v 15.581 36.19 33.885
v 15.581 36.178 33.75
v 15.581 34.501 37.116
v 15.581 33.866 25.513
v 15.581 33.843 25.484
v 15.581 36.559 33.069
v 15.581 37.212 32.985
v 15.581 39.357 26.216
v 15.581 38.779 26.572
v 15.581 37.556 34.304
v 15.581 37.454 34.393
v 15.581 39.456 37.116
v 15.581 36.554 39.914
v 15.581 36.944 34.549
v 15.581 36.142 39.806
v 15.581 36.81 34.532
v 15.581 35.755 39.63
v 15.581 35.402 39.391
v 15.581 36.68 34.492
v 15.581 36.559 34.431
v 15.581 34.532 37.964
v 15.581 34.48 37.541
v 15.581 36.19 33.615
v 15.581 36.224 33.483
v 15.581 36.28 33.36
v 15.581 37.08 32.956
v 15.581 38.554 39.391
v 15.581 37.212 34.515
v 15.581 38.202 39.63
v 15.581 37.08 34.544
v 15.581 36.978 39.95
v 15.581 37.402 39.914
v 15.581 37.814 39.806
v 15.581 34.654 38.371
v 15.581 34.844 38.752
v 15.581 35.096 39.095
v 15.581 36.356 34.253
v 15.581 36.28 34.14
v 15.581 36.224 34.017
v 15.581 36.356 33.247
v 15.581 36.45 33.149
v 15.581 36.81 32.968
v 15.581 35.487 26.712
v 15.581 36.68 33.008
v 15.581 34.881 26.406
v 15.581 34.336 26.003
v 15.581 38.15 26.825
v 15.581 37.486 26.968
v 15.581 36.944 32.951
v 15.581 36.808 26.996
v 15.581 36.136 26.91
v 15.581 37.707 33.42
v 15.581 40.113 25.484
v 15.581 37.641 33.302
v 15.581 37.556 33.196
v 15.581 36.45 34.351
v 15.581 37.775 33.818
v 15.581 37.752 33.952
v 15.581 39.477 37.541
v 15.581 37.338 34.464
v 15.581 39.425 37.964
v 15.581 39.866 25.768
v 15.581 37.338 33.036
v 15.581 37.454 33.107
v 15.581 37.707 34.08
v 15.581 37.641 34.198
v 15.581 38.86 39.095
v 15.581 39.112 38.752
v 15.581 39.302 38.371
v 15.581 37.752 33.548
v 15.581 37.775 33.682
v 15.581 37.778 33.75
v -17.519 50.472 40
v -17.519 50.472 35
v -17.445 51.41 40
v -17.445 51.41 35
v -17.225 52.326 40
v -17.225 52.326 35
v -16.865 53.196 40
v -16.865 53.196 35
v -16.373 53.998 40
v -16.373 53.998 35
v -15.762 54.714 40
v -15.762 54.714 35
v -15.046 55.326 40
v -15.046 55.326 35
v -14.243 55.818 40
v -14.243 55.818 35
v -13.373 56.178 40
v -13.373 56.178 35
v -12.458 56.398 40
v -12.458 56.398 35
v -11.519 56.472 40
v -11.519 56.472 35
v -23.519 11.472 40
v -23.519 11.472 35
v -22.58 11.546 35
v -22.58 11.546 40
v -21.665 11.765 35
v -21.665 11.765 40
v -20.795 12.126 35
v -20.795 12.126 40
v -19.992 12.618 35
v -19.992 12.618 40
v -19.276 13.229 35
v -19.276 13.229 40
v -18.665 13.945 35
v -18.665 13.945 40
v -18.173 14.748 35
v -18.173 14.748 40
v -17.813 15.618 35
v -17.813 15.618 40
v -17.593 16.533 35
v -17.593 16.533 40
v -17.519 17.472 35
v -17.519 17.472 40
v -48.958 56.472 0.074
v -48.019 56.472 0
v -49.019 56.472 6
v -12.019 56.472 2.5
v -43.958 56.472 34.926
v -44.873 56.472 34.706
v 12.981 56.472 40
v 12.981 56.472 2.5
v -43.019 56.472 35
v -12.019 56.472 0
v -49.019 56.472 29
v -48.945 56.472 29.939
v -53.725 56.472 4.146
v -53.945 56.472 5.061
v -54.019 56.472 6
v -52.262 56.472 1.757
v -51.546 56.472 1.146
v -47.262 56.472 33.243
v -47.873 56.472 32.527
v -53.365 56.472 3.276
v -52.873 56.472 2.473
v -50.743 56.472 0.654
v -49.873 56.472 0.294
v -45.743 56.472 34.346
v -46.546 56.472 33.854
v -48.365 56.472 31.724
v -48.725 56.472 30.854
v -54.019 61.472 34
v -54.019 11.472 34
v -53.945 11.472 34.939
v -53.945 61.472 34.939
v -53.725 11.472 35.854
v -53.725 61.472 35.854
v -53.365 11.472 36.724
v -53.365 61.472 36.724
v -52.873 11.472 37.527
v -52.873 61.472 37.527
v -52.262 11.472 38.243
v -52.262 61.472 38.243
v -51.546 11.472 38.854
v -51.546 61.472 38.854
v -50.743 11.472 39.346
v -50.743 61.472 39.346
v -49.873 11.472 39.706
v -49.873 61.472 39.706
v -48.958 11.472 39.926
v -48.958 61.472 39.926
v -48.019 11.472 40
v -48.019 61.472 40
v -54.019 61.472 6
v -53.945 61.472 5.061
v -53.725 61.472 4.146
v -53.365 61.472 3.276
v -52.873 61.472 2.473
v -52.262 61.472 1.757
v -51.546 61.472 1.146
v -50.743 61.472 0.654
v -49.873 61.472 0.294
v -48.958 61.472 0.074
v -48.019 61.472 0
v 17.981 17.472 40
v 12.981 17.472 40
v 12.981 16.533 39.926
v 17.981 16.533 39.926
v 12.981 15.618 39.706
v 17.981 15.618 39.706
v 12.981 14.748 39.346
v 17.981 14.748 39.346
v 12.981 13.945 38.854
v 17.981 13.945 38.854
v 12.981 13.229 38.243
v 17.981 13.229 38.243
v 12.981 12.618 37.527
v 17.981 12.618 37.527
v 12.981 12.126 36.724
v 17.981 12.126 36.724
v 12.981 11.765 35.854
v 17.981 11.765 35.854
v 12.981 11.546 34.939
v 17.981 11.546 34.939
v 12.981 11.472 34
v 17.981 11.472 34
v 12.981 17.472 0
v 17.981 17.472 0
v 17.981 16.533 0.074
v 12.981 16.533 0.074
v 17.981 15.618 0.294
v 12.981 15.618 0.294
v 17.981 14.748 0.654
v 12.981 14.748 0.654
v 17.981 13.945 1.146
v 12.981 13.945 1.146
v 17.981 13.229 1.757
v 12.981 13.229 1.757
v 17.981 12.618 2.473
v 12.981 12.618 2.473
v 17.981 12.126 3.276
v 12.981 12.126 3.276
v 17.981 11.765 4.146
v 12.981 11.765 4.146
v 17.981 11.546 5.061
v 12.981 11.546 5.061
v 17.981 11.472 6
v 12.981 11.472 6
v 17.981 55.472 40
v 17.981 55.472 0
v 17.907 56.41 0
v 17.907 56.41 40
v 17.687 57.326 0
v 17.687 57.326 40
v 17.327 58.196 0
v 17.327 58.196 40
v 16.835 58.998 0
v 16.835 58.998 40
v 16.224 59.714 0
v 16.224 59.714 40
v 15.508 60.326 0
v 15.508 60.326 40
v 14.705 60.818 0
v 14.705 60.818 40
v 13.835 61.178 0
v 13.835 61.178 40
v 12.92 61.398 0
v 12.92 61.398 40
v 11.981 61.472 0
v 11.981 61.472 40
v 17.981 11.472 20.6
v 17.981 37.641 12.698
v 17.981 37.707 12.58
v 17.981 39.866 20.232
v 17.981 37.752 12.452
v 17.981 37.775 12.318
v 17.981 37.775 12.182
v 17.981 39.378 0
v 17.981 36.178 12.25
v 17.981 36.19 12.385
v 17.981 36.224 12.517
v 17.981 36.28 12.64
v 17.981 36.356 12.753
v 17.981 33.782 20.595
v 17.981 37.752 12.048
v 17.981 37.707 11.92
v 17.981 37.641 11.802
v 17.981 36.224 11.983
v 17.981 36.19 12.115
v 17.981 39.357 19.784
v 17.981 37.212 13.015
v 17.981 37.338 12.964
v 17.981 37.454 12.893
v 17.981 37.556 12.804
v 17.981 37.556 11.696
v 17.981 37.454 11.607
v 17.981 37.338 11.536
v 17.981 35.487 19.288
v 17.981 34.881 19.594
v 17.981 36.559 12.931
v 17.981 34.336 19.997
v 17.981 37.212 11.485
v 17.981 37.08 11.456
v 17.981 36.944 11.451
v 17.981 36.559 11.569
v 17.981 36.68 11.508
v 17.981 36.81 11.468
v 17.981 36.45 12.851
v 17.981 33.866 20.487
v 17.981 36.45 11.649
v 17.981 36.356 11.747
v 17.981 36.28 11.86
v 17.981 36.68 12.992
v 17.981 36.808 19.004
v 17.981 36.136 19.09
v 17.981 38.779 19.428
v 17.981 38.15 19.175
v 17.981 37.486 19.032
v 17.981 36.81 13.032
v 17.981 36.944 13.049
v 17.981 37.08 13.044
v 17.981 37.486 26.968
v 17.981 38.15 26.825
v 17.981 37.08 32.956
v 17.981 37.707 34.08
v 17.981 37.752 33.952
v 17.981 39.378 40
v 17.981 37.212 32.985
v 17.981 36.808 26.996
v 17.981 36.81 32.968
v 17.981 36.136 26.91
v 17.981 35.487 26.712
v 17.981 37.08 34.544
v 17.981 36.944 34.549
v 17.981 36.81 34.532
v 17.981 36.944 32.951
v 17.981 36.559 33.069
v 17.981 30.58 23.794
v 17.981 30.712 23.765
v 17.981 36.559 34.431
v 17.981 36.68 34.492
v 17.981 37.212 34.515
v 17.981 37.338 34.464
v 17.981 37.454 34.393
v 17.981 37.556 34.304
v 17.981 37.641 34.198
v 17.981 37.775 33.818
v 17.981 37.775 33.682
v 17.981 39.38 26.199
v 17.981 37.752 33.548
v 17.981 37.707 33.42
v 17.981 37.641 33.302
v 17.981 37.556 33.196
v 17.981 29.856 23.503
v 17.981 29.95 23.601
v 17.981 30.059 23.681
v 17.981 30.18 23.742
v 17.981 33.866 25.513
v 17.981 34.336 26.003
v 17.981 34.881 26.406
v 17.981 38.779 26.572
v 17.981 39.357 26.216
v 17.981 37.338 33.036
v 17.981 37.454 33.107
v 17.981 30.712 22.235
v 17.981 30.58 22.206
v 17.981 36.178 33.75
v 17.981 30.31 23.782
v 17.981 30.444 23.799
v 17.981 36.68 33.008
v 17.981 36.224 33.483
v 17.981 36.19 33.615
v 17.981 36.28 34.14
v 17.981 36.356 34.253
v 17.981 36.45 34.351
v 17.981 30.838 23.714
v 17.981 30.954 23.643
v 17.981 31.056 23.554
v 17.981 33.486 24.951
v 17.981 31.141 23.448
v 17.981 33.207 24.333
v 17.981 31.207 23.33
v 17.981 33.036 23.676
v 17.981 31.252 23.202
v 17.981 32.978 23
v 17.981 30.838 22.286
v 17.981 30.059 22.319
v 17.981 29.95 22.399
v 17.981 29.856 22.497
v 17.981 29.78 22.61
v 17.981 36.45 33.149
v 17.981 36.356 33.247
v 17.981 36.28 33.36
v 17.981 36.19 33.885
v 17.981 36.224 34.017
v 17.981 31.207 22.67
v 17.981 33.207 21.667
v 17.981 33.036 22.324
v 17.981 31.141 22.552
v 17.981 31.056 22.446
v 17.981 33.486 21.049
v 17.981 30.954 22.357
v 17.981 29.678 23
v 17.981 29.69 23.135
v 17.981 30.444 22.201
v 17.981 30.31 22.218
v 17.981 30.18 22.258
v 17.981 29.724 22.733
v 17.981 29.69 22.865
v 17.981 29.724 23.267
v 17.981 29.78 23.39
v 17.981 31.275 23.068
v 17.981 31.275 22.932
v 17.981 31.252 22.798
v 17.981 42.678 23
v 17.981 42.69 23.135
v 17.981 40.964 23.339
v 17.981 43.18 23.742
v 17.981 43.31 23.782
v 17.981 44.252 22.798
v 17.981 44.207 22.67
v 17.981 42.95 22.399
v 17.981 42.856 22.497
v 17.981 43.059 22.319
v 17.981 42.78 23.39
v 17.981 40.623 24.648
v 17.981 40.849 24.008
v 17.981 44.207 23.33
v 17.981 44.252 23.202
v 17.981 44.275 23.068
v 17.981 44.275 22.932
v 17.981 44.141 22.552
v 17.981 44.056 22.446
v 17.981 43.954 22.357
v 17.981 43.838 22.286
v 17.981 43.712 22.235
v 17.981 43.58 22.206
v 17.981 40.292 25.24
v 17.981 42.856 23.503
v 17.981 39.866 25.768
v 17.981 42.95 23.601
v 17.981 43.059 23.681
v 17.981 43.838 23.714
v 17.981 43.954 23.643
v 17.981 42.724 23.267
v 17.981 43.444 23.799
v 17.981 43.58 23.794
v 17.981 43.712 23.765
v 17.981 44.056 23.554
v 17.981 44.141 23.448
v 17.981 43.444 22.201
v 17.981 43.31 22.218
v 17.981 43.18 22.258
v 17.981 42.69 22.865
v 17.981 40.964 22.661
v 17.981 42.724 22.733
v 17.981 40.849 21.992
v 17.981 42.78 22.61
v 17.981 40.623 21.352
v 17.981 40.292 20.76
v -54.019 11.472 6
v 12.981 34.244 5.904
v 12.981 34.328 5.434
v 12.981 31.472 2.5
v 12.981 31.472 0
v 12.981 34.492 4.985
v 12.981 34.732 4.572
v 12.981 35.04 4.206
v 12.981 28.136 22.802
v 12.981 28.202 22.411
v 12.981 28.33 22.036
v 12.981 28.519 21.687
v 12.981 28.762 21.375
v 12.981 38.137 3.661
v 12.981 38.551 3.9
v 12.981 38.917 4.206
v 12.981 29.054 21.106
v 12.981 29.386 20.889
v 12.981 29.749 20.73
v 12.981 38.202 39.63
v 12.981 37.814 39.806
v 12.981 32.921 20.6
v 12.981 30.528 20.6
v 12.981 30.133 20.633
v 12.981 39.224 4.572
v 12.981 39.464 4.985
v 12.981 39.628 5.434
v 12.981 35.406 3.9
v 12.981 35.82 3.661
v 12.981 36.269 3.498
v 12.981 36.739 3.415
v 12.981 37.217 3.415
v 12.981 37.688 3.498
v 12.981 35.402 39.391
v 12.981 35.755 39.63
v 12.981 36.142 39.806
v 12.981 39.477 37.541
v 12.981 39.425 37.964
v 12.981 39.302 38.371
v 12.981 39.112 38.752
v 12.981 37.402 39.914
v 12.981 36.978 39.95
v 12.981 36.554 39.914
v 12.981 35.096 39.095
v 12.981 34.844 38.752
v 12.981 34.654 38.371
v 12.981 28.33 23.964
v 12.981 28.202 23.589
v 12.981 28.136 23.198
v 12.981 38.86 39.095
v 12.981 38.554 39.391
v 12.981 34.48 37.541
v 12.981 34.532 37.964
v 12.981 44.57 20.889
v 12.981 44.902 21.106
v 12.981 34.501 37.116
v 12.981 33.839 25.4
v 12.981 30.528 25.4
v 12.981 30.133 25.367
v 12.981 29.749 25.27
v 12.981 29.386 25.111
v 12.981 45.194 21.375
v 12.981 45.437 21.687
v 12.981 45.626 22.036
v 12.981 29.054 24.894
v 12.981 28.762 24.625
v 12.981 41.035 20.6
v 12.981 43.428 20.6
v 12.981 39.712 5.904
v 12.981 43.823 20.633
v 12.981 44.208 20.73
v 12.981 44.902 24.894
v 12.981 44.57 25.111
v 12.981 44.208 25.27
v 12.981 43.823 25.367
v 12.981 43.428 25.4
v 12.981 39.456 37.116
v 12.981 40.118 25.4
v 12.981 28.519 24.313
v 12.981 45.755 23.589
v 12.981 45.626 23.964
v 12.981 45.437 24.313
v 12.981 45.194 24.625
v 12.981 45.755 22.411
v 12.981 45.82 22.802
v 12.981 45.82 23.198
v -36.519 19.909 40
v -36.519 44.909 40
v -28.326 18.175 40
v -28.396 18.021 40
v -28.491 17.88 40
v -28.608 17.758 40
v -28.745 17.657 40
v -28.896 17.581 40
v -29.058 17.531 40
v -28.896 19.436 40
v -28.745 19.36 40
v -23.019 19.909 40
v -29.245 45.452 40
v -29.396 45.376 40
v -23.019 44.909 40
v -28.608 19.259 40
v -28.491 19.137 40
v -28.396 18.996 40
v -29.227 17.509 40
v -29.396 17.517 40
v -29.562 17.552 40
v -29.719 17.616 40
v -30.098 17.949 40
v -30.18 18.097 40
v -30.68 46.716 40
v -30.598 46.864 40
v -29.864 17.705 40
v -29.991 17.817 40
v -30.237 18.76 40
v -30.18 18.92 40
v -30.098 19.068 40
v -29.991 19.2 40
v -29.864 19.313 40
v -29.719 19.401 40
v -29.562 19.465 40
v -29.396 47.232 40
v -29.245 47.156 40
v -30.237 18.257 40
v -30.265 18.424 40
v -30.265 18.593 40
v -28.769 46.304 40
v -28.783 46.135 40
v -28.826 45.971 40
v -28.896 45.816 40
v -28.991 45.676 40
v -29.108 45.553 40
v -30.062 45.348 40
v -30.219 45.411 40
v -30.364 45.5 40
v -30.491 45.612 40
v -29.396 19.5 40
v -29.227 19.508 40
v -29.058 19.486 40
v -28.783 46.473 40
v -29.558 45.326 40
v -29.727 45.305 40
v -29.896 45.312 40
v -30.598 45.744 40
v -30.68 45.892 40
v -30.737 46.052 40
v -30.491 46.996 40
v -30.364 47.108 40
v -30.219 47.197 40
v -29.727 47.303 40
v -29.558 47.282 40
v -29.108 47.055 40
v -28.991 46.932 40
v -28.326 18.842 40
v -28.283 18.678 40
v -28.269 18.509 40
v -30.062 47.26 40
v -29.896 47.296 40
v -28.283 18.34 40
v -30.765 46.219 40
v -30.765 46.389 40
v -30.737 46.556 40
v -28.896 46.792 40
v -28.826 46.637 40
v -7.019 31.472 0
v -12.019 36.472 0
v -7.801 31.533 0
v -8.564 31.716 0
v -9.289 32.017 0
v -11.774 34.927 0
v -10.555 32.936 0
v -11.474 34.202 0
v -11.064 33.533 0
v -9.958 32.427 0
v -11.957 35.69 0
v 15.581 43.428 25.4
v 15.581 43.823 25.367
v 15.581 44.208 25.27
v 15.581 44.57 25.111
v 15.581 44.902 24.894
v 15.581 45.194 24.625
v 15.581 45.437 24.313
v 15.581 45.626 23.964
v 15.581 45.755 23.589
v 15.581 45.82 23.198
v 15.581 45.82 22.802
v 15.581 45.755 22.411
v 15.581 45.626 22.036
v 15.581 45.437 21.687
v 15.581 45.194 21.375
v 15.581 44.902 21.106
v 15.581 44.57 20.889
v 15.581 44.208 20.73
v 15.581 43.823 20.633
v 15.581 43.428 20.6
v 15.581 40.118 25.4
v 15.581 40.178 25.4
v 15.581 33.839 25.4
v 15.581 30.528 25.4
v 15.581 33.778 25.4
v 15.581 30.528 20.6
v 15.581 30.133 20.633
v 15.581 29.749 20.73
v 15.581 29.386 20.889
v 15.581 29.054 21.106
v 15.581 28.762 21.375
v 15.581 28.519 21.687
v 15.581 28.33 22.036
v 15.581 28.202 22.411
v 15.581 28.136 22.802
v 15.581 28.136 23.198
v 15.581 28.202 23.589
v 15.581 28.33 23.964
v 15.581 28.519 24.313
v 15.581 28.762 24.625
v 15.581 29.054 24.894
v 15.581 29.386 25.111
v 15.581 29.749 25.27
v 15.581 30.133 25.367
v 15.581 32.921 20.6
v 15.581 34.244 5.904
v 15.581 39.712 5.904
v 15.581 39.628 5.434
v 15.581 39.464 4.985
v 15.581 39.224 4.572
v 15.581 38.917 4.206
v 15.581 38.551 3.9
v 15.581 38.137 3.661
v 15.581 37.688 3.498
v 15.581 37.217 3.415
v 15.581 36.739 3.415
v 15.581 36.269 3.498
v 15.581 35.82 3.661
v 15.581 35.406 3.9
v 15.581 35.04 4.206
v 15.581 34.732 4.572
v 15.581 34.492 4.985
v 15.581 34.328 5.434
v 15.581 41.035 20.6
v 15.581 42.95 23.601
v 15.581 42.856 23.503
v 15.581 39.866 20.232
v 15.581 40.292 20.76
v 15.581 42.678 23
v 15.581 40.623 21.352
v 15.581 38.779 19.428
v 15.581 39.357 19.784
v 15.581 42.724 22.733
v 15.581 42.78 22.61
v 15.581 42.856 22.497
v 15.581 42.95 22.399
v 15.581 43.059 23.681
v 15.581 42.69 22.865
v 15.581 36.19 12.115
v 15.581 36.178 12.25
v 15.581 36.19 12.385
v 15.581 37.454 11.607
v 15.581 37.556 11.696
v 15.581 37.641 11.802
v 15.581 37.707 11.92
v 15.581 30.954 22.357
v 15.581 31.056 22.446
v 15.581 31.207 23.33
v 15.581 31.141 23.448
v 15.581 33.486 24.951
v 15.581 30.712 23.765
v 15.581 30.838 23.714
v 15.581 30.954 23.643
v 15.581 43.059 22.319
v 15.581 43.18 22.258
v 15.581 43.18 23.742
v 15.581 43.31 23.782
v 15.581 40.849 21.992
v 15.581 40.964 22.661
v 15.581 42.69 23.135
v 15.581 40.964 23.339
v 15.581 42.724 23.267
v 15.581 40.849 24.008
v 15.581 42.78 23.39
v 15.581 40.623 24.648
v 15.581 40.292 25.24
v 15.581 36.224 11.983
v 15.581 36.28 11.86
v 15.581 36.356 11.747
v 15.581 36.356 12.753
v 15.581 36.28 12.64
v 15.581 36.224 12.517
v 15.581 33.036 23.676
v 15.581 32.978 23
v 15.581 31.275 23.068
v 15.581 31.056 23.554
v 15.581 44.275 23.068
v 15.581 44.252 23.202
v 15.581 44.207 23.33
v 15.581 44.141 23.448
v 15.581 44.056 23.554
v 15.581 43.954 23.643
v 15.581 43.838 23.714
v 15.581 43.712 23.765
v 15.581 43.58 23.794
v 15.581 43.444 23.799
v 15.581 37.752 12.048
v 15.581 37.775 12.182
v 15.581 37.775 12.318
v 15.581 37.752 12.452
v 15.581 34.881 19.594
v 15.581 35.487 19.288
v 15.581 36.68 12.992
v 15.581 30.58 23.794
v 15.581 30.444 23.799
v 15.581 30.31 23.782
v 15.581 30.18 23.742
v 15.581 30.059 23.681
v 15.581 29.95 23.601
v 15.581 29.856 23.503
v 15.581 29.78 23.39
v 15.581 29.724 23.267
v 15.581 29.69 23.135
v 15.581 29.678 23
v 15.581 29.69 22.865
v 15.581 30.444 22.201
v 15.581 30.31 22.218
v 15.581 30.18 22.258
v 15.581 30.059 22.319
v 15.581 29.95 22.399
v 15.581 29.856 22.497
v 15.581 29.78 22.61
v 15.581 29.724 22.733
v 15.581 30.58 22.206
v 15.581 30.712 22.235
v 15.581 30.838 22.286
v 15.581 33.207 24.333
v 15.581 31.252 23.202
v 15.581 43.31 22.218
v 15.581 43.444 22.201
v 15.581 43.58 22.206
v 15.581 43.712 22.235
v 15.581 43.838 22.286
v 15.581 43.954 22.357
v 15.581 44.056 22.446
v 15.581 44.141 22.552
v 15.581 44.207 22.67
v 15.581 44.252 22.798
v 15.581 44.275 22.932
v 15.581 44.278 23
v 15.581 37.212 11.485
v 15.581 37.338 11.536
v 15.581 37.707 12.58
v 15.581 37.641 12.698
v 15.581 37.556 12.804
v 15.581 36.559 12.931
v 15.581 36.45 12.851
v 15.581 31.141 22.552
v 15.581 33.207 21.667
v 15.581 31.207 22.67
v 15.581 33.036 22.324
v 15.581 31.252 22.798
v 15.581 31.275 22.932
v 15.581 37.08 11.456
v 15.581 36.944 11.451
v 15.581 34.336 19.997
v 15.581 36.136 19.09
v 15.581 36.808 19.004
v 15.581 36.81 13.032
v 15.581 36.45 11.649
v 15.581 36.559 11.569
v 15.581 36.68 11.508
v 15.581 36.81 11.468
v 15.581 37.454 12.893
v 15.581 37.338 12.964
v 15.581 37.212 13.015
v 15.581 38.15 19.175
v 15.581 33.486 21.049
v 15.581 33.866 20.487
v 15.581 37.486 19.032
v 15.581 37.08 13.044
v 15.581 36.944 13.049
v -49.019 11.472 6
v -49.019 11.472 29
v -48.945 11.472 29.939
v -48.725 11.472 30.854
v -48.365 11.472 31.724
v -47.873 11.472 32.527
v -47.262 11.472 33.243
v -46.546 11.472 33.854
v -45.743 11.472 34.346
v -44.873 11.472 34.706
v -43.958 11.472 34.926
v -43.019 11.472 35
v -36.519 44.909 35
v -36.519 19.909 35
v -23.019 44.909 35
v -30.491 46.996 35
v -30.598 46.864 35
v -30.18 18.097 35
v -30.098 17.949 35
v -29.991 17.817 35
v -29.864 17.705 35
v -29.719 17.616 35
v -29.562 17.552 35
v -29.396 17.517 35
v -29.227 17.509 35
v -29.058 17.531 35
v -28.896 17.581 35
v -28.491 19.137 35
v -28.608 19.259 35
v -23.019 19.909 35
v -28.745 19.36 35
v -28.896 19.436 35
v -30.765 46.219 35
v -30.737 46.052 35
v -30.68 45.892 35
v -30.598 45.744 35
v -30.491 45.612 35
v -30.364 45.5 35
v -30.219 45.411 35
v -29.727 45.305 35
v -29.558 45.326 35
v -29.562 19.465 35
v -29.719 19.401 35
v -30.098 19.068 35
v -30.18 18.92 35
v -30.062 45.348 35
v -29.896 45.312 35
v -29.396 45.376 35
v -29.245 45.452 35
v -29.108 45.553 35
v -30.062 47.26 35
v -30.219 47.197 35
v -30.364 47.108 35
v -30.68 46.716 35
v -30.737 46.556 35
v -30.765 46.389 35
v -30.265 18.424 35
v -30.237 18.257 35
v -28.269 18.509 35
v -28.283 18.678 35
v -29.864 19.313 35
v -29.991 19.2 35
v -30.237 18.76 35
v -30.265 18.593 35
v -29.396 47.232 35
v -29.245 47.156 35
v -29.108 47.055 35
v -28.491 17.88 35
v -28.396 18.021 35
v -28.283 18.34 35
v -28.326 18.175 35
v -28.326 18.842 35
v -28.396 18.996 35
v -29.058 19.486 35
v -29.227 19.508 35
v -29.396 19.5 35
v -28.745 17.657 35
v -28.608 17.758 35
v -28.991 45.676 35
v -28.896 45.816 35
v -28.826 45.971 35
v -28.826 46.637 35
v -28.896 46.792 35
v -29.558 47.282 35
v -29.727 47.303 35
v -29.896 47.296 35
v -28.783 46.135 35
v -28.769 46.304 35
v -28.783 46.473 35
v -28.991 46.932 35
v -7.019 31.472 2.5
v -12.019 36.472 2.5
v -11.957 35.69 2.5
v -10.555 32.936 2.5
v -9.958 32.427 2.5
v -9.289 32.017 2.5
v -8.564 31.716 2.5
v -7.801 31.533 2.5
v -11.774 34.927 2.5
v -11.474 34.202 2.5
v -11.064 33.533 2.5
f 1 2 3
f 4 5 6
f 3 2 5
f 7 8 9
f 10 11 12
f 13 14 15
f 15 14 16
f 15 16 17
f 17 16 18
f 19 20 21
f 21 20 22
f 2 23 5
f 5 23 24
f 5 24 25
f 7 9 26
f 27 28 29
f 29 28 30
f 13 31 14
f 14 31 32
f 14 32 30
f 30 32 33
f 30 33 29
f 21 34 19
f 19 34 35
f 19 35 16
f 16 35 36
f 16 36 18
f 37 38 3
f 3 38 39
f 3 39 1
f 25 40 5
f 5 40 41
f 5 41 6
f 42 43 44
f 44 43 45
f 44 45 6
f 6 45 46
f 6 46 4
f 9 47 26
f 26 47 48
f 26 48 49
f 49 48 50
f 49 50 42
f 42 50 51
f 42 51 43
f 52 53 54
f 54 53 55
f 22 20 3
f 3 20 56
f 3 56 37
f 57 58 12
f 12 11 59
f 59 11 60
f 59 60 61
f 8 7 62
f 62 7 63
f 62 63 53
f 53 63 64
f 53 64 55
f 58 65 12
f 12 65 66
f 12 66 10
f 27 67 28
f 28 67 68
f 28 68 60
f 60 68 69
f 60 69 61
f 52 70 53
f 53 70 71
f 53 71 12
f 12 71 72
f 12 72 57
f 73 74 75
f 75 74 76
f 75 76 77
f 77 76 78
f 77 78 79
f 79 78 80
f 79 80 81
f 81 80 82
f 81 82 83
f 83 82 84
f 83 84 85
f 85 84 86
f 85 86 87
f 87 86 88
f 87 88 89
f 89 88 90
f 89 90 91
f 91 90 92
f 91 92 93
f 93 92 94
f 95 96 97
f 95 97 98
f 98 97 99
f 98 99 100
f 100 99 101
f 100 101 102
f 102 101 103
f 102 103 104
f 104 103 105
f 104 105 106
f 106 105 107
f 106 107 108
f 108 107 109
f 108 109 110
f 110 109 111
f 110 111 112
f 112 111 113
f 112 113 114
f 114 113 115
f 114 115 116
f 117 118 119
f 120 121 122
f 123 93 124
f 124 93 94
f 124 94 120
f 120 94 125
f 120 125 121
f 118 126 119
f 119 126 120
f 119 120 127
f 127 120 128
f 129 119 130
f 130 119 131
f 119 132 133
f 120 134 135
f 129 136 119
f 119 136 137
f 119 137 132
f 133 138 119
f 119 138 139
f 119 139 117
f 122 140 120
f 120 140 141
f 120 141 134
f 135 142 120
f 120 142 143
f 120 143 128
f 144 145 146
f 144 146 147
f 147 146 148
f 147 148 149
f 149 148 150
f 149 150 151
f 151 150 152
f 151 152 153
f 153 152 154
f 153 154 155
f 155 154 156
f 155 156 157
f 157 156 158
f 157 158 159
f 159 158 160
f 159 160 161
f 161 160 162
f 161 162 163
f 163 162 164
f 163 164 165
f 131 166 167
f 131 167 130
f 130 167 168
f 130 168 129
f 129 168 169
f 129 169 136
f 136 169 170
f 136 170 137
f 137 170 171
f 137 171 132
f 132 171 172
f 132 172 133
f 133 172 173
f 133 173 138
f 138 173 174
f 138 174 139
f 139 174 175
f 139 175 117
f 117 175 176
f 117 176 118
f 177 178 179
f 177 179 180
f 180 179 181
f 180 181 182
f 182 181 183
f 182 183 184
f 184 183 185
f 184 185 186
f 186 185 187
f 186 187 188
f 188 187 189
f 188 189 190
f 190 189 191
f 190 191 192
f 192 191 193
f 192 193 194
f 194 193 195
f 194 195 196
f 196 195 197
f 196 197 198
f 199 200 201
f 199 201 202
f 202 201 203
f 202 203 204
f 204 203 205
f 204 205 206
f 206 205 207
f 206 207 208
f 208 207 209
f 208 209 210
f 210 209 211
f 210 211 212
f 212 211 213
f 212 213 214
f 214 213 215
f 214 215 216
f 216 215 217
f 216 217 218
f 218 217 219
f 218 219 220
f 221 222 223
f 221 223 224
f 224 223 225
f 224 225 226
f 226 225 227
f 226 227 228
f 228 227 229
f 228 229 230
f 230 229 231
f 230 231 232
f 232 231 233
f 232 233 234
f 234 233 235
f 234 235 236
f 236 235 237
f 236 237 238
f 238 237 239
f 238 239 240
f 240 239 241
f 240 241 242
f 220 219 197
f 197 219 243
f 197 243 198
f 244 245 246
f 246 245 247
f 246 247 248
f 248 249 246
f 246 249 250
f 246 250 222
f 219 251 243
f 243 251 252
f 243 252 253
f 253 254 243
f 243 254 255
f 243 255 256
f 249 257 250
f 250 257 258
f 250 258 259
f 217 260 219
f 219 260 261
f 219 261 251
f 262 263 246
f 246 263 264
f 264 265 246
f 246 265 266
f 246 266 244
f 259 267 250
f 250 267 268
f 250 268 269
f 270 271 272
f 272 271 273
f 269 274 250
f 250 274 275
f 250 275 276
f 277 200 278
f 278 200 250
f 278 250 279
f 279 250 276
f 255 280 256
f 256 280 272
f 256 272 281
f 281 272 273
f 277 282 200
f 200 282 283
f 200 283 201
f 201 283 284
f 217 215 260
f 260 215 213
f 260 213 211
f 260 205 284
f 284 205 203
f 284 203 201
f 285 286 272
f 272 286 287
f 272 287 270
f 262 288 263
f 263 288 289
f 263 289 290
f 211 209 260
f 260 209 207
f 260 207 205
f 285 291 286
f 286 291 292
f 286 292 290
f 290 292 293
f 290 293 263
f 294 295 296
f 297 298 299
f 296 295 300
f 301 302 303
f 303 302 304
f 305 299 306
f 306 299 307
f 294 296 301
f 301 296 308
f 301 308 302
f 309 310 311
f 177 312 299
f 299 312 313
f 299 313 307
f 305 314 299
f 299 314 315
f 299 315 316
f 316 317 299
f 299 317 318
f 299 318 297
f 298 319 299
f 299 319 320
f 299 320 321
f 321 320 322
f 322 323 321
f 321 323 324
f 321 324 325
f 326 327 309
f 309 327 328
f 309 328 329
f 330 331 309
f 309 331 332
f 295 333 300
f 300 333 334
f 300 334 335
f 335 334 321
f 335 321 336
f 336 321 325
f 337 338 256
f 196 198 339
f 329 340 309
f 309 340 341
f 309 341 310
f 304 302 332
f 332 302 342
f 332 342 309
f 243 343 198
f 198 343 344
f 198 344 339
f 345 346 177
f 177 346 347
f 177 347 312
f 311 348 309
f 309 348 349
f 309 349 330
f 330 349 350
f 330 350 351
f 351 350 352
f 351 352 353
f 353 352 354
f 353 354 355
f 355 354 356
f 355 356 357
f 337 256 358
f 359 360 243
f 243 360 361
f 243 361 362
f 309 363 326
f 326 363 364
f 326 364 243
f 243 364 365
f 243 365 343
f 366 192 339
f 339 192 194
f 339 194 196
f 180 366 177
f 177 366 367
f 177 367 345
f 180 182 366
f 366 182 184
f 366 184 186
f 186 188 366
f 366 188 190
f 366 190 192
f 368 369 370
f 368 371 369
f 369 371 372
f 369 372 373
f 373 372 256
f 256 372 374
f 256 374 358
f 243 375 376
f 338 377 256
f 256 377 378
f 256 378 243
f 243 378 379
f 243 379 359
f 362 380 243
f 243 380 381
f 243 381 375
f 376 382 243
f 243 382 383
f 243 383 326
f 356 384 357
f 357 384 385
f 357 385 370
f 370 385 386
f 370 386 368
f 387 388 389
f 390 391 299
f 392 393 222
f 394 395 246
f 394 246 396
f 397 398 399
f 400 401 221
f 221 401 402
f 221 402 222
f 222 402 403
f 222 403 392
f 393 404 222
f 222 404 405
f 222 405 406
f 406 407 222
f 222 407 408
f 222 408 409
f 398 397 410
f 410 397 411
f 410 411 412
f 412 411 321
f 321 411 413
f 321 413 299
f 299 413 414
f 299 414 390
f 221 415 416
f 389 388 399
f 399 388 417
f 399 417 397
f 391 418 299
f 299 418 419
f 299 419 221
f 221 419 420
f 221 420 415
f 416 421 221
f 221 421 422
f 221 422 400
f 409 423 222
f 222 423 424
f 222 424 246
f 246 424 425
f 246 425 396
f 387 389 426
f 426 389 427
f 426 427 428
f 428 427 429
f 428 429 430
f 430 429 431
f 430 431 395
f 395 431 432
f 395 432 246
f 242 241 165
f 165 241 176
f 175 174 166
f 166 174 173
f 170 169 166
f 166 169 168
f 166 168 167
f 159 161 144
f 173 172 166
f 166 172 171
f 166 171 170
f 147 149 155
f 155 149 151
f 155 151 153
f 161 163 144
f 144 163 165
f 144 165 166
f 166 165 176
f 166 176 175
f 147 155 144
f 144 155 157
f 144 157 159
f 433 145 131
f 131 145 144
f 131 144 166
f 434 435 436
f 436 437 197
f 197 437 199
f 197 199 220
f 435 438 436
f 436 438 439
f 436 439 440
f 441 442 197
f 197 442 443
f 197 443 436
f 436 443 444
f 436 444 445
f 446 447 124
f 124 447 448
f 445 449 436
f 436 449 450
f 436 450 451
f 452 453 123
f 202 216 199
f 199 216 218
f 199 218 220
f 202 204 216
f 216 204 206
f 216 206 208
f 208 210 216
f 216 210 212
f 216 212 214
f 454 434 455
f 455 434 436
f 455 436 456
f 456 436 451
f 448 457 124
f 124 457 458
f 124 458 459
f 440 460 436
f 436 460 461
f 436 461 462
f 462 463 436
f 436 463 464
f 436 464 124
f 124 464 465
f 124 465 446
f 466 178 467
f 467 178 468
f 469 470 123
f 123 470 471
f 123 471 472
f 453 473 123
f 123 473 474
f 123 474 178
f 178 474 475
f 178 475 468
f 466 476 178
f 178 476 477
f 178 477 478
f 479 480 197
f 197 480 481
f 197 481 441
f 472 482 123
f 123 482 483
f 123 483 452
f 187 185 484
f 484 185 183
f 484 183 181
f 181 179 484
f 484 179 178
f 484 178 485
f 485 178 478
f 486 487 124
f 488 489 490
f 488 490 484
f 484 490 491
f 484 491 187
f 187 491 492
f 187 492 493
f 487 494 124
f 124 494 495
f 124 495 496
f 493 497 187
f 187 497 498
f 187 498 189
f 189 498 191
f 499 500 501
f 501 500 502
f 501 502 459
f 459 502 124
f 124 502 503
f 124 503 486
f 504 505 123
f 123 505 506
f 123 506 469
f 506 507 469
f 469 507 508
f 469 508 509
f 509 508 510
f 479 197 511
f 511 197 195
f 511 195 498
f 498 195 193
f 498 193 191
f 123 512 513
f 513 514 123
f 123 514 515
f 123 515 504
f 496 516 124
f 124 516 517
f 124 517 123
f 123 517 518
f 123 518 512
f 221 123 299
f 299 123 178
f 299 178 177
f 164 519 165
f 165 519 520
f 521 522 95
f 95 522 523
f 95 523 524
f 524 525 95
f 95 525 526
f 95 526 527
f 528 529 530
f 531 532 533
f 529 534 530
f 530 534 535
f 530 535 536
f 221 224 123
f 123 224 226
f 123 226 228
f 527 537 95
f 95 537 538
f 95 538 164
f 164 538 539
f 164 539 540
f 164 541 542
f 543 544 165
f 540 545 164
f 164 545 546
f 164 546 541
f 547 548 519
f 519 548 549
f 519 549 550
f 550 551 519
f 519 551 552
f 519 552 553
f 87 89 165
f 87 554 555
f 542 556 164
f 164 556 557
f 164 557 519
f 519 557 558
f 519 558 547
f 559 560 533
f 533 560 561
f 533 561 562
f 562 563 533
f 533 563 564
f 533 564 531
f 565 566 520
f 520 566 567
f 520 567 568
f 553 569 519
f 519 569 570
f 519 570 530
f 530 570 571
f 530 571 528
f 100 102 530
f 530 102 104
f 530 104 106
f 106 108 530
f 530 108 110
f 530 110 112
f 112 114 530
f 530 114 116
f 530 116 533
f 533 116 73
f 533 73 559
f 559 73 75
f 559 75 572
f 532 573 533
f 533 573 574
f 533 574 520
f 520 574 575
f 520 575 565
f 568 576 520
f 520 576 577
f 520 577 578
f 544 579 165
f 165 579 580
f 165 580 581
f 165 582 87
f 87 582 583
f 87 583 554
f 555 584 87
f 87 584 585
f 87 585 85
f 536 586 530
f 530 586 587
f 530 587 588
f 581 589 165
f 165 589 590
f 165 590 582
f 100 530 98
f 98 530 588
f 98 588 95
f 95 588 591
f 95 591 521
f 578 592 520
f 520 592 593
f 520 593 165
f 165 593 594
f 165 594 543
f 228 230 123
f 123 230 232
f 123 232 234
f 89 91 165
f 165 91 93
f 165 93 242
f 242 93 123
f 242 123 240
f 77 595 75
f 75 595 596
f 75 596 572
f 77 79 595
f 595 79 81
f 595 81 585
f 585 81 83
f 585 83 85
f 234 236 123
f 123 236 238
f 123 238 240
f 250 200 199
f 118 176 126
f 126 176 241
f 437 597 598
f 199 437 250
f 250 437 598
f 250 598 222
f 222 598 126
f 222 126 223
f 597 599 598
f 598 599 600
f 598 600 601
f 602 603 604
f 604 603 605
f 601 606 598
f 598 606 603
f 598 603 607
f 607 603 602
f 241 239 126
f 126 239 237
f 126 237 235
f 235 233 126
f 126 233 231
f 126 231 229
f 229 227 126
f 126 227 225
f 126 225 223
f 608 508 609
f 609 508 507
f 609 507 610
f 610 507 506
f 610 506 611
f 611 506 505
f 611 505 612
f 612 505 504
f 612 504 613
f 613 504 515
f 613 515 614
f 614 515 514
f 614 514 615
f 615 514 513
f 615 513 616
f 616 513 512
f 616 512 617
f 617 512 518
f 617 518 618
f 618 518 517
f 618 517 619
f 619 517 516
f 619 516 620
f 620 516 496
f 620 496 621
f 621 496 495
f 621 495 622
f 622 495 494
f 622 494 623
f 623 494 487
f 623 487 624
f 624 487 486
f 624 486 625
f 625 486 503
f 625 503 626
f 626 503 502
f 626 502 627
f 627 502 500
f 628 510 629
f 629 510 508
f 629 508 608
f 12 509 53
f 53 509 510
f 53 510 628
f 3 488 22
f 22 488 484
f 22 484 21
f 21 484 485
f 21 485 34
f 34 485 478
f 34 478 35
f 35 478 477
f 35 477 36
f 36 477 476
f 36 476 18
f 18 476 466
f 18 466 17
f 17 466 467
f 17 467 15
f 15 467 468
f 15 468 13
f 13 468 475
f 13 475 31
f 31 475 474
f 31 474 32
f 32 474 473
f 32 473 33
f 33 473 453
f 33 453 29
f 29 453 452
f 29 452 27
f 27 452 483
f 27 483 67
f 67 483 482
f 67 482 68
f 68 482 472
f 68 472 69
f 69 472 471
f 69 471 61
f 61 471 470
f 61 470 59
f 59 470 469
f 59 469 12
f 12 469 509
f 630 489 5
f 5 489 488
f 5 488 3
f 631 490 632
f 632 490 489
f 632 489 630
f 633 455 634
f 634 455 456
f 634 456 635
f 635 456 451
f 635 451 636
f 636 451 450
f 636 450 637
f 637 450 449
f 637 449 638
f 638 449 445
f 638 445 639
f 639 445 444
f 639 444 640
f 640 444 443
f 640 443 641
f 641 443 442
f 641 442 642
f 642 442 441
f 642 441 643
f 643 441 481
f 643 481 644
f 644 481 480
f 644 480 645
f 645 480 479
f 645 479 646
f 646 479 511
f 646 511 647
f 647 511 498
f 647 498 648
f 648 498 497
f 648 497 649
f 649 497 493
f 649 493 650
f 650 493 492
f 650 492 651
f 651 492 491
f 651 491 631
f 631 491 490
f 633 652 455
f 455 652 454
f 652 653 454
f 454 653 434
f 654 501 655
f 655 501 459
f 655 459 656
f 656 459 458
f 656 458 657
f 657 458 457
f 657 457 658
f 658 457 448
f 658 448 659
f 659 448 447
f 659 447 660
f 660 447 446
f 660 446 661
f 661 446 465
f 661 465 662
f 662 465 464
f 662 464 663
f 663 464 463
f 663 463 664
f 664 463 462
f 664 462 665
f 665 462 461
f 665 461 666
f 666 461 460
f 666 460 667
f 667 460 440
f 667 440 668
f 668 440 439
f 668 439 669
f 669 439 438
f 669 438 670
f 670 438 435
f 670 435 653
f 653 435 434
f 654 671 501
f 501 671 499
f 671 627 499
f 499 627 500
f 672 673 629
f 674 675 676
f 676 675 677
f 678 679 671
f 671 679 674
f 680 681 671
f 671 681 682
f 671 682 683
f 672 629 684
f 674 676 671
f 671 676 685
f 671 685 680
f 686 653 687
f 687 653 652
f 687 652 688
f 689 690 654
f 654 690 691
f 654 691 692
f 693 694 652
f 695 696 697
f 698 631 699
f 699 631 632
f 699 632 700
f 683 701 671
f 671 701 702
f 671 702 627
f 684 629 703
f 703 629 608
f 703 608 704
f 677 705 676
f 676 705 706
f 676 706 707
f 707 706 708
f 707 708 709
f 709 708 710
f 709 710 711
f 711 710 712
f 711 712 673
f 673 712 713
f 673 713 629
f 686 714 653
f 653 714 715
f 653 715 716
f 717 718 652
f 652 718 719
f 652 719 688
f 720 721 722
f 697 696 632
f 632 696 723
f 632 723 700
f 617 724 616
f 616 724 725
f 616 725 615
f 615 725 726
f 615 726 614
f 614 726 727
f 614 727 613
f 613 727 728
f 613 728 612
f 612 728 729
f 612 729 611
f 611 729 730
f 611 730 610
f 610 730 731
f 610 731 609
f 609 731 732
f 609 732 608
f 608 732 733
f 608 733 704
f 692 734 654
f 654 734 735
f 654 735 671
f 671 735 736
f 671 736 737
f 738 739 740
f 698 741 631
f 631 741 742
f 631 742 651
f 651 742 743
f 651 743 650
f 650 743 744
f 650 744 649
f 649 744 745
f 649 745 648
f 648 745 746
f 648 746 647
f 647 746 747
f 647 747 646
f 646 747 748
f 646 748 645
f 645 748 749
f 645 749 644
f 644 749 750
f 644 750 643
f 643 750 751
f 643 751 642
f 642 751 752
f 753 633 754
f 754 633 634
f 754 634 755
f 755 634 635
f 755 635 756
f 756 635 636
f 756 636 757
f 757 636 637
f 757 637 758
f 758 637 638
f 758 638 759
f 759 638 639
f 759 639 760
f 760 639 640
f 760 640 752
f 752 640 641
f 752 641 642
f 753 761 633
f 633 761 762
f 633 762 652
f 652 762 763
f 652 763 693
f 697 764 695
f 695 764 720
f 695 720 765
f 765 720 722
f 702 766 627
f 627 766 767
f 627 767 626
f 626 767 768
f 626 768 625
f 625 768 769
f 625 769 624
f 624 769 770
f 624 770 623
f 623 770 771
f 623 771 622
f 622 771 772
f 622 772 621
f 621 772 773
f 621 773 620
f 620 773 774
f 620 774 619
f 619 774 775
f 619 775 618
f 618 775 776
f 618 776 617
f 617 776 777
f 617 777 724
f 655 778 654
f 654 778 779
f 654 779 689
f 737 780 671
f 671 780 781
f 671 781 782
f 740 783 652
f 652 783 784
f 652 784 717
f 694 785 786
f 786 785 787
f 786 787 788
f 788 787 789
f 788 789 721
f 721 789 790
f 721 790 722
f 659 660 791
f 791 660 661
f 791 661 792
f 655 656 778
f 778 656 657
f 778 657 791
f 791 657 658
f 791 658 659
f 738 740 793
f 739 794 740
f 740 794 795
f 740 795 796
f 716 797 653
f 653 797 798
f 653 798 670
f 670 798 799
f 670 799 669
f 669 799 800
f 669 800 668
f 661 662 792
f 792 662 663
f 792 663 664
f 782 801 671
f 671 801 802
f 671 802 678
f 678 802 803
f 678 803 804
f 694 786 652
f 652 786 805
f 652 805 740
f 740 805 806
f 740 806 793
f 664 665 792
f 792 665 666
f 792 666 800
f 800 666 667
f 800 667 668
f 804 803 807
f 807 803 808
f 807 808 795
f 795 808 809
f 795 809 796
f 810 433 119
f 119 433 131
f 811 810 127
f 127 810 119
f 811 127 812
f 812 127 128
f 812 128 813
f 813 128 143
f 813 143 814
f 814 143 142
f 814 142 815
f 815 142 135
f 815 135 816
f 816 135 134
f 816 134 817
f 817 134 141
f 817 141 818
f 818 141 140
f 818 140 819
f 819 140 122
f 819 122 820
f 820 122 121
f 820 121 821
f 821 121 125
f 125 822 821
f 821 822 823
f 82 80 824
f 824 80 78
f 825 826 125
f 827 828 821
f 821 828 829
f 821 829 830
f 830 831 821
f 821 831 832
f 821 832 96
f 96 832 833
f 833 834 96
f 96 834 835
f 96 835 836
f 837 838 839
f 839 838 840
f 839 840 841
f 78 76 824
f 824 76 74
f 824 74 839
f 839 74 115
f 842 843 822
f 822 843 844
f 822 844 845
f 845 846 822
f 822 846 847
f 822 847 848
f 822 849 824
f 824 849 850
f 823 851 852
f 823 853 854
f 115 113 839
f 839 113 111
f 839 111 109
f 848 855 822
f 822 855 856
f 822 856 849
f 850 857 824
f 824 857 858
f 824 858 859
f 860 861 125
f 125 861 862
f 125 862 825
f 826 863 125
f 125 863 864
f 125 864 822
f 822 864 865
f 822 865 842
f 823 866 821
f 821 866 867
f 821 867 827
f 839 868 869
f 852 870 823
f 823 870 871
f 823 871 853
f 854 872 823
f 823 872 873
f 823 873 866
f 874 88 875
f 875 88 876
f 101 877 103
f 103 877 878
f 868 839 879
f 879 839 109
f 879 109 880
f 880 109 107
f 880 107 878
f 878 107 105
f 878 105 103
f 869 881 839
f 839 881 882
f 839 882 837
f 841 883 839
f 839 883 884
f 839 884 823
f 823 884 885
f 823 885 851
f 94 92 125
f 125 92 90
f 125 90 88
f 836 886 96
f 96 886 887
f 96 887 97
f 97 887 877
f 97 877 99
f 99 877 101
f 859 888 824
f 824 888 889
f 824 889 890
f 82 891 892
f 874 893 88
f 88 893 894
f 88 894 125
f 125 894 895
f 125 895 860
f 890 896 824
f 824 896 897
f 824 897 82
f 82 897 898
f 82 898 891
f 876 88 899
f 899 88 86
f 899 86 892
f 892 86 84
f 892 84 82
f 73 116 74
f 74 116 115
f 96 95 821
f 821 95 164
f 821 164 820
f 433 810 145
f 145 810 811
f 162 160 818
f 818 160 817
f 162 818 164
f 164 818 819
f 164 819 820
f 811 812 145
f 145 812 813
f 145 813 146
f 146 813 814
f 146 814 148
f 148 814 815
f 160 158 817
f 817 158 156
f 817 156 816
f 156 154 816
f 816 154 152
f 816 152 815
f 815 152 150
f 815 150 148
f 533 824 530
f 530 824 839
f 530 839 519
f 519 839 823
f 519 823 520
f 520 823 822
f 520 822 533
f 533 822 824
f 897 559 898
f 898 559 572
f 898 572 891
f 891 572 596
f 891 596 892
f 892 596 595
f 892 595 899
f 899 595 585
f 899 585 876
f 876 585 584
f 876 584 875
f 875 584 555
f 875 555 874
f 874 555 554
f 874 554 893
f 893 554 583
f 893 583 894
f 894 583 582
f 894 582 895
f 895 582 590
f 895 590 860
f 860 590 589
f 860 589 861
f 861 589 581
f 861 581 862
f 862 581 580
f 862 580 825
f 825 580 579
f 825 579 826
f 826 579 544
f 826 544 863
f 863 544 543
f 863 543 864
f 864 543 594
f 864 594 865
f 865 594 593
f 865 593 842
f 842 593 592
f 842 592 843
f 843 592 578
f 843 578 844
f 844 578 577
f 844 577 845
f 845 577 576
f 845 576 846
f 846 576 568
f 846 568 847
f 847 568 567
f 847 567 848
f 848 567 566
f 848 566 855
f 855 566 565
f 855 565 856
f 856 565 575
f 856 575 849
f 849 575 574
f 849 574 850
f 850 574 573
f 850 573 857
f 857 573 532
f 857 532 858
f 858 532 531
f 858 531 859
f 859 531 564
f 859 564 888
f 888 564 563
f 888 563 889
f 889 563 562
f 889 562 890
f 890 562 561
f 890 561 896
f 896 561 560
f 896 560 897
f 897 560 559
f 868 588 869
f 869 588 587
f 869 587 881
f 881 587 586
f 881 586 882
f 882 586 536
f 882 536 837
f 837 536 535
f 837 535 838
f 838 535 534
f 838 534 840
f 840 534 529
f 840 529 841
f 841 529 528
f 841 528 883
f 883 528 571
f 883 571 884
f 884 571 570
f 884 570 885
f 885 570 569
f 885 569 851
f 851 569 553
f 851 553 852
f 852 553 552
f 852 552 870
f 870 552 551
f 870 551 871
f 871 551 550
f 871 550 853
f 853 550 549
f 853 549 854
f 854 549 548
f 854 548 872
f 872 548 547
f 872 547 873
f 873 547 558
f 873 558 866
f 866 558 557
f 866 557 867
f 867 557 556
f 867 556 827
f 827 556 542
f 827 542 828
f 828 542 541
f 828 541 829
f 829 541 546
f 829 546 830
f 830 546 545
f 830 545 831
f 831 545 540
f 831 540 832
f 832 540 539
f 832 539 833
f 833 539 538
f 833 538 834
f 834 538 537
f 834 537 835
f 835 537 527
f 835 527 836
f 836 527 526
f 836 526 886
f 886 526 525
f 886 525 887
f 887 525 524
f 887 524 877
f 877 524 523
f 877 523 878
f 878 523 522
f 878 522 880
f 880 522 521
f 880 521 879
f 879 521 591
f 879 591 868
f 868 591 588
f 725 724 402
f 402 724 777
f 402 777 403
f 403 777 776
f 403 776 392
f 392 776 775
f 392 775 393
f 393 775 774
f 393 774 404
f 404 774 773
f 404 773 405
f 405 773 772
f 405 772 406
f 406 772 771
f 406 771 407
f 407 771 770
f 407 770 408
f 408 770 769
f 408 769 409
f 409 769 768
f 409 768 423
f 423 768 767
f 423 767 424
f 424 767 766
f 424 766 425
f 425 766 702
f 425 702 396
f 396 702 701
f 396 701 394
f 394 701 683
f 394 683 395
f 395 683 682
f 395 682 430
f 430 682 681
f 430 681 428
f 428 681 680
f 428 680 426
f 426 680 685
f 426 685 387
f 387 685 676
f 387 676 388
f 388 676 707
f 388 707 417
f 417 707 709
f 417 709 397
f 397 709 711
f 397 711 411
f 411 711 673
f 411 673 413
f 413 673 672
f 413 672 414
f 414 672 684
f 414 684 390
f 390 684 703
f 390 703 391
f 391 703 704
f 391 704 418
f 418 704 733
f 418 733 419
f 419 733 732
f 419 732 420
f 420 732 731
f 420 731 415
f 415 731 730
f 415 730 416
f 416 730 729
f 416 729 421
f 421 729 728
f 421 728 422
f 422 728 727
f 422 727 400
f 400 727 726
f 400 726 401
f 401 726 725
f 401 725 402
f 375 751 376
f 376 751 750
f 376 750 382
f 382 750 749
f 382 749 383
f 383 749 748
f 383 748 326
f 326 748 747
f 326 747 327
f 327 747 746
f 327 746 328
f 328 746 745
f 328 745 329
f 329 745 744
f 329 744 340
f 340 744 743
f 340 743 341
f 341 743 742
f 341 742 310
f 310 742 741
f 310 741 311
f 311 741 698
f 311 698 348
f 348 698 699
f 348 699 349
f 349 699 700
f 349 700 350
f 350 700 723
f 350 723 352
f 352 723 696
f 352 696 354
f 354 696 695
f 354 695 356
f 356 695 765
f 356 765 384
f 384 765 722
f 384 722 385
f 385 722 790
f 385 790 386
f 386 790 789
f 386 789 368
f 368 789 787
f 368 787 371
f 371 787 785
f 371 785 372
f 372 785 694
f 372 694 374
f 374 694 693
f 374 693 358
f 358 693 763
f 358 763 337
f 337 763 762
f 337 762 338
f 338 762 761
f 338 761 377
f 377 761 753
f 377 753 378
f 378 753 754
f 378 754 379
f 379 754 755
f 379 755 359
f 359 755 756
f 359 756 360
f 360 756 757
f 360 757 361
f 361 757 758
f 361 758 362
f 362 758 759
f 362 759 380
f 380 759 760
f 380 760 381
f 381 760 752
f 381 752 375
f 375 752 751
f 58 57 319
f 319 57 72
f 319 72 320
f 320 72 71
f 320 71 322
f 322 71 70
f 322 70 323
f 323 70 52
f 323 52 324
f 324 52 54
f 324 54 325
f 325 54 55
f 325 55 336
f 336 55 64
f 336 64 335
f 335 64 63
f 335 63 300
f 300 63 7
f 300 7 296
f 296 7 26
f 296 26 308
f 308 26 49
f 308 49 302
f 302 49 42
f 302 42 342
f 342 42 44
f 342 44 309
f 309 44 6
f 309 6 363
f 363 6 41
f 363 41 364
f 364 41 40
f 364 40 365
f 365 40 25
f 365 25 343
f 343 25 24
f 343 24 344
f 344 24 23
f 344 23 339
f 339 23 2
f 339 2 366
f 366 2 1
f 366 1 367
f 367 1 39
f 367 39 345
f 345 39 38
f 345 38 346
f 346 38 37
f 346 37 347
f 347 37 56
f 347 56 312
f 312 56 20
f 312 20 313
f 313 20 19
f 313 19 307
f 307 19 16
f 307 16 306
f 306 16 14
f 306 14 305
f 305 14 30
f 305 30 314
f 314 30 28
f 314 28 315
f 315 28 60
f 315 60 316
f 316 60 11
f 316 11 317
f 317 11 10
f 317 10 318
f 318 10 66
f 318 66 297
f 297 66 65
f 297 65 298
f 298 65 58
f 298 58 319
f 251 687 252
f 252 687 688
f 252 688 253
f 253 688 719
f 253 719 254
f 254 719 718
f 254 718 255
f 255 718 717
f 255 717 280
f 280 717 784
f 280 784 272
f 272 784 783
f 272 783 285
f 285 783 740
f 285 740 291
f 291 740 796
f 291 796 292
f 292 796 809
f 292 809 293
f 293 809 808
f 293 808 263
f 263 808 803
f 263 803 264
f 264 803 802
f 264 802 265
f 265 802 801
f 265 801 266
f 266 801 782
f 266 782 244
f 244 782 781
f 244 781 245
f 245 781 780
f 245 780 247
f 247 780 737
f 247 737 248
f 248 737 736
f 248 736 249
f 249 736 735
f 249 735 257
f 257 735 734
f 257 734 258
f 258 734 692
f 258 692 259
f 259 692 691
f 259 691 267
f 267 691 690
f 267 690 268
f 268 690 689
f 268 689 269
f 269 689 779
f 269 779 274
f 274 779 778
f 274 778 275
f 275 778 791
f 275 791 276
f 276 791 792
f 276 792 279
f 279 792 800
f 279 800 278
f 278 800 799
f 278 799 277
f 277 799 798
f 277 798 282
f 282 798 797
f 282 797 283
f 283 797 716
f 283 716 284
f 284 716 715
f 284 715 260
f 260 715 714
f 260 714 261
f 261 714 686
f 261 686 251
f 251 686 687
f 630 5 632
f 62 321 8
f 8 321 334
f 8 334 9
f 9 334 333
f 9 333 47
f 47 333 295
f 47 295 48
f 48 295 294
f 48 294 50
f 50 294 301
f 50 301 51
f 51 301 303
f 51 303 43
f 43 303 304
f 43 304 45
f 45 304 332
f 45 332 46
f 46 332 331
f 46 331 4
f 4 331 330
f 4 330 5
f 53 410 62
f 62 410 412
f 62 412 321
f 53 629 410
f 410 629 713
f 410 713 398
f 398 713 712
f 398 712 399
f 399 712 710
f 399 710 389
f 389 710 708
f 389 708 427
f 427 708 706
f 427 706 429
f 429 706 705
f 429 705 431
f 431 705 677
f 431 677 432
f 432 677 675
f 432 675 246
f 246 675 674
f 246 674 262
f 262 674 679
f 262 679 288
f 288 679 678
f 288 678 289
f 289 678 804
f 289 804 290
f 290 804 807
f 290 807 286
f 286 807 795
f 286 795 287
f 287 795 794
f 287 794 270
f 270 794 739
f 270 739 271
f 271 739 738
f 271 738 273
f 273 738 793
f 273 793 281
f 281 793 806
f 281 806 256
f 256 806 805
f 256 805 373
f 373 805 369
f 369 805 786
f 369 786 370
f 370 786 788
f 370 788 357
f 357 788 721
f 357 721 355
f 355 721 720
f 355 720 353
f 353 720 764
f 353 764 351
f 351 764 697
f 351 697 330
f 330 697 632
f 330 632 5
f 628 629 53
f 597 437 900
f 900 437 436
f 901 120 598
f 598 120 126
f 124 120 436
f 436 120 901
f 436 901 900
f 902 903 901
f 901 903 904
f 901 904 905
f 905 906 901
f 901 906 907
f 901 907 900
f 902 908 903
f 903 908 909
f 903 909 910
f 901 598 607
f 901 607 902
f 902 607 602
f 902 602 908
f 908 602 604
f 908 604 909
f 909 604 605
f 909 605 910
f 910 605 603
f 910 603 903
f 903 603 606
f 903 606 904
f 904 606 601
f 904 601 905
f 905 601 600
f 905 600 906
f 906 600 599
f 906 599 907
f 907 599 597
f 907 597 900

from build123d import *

# Parameters (mm, degrees)
EXTRUDE_1_DEPTH     = 40
FILLET_2_R          = 6
FILLET_3_R          = 6
FILLET_4_R          = 6
FILLET_5_R          = 6
FILLET_6_R          = 6
CUT_EXTRUDE_1_DEPTH = 2.6
EXTRUDE_START       = 45
EXTRUDE_2_DEPTH     = 45
SKETCH_4_R          = 1
SKETCH_4_W          = 13.5
SKETCH_4_H          = 25
CUT_EXTRUDE_2_DEPTH = 60
FILLET_7_R          = 6
FILLET_8_R          = 6
SKETCH_5_R          = 0.8
SKETCH_5_R_2        = 4
CUT_EXTRUDE_3_DEPTH = 10
EXTRUDE_START_2     = -2.5
EXTRUDE_4_DEPTH     = 2.5
FILLET_9_R          = 5


with BuildPart() as part:
    # 草图1 → 凸台-拉伸1 (new body)
    with BuildSketch(Plane.XY):
        Polygon((12.980970113, 56.471676883), (12.980970113, 11.471676883), (17.980970113, 11.471676883), (17.980970113, 61.471676883), (-54.019029887, 61.471676883), (-54.019029887, 56.471676883), (-49.554341186, 56.471676883), align=None)
    extrude(amount=EXTRUDE_1_DEPTH)

    # 圆角2
    fillet_2_edges = [part.edges().sort_by_distance(p)[0] for p in [
        (17.980970113, 61.471676883, 20),
    ]]
    fillet(fillet_2_edges, radius=FILLET_2_R)

    # 圆角3
    fillet_3_edges = [part.edges().sort_by_distance(p)[0] for p in [
        (15.480970113, 11.471676883, 0),
    ]]
    fillet(fillet_3_edges, radius=FILLET_3_R)

    # 圆角4
    fillet_4_edges = [part.edges().sort_by_distance(p)[0] for p in [
        (15.480970113, 11.471676883, 40),
    ]]
    fillet(fillet_4_edges, radius=FILLET_4_R)

    # 圆角5
    fillet_5_edges = [part.edges().sort_by_distance(p)[0] for p in [
        (-54.019029887, 58.971676883, 0),
    ]]
    fillet(fillet_5_edges, radius=FILLET_5_R)

    # 圆角6
    fillet_6_edges = [part.edges().sort_by_distance(p)[0] for p in [
        (-54.019029887, 58.971676883, 40),
    ]]
    fillet(fillet_6_edges, radius=FILLET_6_R)

    # 草图2 → 切除-拉伸1 (cut)
    with BuildSketch(Plane.ZY.offset(-12.980970113)):
        with BuildLine():
            Line((25.4, 43.428225459), (25.4, 40.117895335))
            Line((25.4, 40.117895335), (37.115774764, 39.455783428))
            ThreePointArc((37.115774764, 39.455783428), (39.95, 36.978225459), (37.115774764, 34.500667489))
            Line((37.115774764, 34.500667489), (25.4, 33.838555582))
            Line((25.4, 33.838555582), (25.4, 30.528225459))
            ThreePointArc((25.4, 30.528225459), (23, 28.128225459), (20.6, 30.528225459))
            Line((20.6, 30.528225459), (20.6, 32.921208444))
            Line((20.6, 32.921208444), (5.903894821, 34.243983881))
            ThreePointArc((5.903894821, 34.243983881), (3.404704977, 36.978225459), (5.903894821, 39.712467036))
            Line((5.903894821, 39.712467036), (20.6, 41.035242473))
            Line((20.6, 41.035242473), (20.6, 43.428225459))
            ThreePointArc((20.6, 43.428225459), (23, 45.828225459), (25.4, 43.428225459))
        make_face()
    extrude(amount=-CUT_EXTRUDE_1_DEPTH, mode=Mode.SUBTRACT)

    # 草图3 → 凸台-拉伸2 (add)
    with BuildSketch(Plane.XZ.offset(-56.471676883).offset(EXTRUDE_START)):
        with BuildLine():
            Line((-54.019029887, 34), (-54.019029887, 6))
            Line((-54.019029887, 6), (-49.019029887, 6))
            Line((-49.019029887, 6), (-49.019029887, 29))
            ThreePointArc((-49.019029887, 29), (-47.261670574, 33.242640687), (-43.019029887, 35))
            Line((-43.019029887, 35), (-17.519029887, 35))
            Line((-17.519029887, 35), (-17.519029887, 40))
            Line((-17.519029887, 40), (-48.019029887, 40))
            ThreePointArc((-48.019029887, 40), (-52.261670574, 38.242640687), (-54.019029887, 34))
        make_face()
    extrude(amount=-EXTRUDE_2_DEPTH)

    # 草图4 → 切除-拉伸2 (cut)
    with BuildSketch(Plane.XY.offset(40)):
        with Locations((-29.269029887, 18.508506795)):
            Circle(SKETCH_4_R)
        with Locations((-29.769029887, 46.304010029)):
            Circle(SKETCH_4_R)
        with Locations((-29.769029887, 32.408506795)):
            Rectangle(SKETCH_4_W, SKETCH_4_H)
    extrude(amount=-CUT_EXTRUDE_2_DEPTH, mode=Mode.SUBTRACT)

    # 圆角7
    fillet_7_edges = [part.edges().sort_by_distance(p)[0] for p in [
        (-17.519029887, 11.471676883, 37.5),
    ]]
    fillet(fillet_7_edges, radius=FILLET_7_R)

    # 圆角8
    fillet_8_edges = [part.edges().sort_by_distance(p)[0] for p in [
        (-17.519029887, 56.471676883, 37.5),
    ]]
    fillet(fillet_8_edges, radius=FILLET_8_R)

    # 草图5 → 切除-拉伸3 (cut)
    with BuildSketch(Plane.ZY.offset(-15.580970113)):
        with Locations(Location((12.25, 36.978225459, 0), (0, 0, 270))):
            Circle(SKETCH_5_R)
        with Locations(Location((23, 36.978225459, 0), (0, 0, 270))):
            Circle(SKETCH_5_R_2)
        with Locations(Location((33.75, 36.978225459, 0), (0, 0, 270))):
            Circle(SKETCH_5_R)
        with Locations(Location((23, 30.478225459, 0), (0, 0, 270))):
            Circle(SKETCH_5_R)
        with Locations(Location((23, 43.478225459, 0), (0, 0, 270))):
            Circle(SKETCH_5_R)
    extrude(amount=-CUT_EXTRUDE_3_DEPTH, mode=Mode.SUBTRACT)

    # 草图7 → 凸台-拉伸4 (add)
    with BuildSketch(Plane(origin=(0, 0, 0), x_dir=(-1, 0, 0), z_dir=(0, 0, -1)).offset(EXTRUDE_START_2)):
        with BuildLine():
            Line((-17.980970113, 55.471676883), (-17.980970113, 31.471676883))
            Line((-17.980970113, 31.471676883), (12.019029887, 31.471676883))
            Line((12.019029887, 31.471676883), (12.019029887, 61.471676883))
            Line((12.019029887, 61.471676883), (-11.980970113, 61.471676883))
            ThreePointArc((-11.980970113, 61.471676883), (-16.2236108, 59.71431757), (-17.980970113, 55.471676883))
        make_face()
    extrude(amount=EXTRUDE_4_DEPTH)

    # 圆角9
    fillet_9_edges = [part.edges().sort_by_distance(p)[0] for p in [
        (-12.019029887, 31.471676883, 1.25),
    ]]
    fillet(fillet_9_edges, radius=FILLET_9_R)


solid = part.part
